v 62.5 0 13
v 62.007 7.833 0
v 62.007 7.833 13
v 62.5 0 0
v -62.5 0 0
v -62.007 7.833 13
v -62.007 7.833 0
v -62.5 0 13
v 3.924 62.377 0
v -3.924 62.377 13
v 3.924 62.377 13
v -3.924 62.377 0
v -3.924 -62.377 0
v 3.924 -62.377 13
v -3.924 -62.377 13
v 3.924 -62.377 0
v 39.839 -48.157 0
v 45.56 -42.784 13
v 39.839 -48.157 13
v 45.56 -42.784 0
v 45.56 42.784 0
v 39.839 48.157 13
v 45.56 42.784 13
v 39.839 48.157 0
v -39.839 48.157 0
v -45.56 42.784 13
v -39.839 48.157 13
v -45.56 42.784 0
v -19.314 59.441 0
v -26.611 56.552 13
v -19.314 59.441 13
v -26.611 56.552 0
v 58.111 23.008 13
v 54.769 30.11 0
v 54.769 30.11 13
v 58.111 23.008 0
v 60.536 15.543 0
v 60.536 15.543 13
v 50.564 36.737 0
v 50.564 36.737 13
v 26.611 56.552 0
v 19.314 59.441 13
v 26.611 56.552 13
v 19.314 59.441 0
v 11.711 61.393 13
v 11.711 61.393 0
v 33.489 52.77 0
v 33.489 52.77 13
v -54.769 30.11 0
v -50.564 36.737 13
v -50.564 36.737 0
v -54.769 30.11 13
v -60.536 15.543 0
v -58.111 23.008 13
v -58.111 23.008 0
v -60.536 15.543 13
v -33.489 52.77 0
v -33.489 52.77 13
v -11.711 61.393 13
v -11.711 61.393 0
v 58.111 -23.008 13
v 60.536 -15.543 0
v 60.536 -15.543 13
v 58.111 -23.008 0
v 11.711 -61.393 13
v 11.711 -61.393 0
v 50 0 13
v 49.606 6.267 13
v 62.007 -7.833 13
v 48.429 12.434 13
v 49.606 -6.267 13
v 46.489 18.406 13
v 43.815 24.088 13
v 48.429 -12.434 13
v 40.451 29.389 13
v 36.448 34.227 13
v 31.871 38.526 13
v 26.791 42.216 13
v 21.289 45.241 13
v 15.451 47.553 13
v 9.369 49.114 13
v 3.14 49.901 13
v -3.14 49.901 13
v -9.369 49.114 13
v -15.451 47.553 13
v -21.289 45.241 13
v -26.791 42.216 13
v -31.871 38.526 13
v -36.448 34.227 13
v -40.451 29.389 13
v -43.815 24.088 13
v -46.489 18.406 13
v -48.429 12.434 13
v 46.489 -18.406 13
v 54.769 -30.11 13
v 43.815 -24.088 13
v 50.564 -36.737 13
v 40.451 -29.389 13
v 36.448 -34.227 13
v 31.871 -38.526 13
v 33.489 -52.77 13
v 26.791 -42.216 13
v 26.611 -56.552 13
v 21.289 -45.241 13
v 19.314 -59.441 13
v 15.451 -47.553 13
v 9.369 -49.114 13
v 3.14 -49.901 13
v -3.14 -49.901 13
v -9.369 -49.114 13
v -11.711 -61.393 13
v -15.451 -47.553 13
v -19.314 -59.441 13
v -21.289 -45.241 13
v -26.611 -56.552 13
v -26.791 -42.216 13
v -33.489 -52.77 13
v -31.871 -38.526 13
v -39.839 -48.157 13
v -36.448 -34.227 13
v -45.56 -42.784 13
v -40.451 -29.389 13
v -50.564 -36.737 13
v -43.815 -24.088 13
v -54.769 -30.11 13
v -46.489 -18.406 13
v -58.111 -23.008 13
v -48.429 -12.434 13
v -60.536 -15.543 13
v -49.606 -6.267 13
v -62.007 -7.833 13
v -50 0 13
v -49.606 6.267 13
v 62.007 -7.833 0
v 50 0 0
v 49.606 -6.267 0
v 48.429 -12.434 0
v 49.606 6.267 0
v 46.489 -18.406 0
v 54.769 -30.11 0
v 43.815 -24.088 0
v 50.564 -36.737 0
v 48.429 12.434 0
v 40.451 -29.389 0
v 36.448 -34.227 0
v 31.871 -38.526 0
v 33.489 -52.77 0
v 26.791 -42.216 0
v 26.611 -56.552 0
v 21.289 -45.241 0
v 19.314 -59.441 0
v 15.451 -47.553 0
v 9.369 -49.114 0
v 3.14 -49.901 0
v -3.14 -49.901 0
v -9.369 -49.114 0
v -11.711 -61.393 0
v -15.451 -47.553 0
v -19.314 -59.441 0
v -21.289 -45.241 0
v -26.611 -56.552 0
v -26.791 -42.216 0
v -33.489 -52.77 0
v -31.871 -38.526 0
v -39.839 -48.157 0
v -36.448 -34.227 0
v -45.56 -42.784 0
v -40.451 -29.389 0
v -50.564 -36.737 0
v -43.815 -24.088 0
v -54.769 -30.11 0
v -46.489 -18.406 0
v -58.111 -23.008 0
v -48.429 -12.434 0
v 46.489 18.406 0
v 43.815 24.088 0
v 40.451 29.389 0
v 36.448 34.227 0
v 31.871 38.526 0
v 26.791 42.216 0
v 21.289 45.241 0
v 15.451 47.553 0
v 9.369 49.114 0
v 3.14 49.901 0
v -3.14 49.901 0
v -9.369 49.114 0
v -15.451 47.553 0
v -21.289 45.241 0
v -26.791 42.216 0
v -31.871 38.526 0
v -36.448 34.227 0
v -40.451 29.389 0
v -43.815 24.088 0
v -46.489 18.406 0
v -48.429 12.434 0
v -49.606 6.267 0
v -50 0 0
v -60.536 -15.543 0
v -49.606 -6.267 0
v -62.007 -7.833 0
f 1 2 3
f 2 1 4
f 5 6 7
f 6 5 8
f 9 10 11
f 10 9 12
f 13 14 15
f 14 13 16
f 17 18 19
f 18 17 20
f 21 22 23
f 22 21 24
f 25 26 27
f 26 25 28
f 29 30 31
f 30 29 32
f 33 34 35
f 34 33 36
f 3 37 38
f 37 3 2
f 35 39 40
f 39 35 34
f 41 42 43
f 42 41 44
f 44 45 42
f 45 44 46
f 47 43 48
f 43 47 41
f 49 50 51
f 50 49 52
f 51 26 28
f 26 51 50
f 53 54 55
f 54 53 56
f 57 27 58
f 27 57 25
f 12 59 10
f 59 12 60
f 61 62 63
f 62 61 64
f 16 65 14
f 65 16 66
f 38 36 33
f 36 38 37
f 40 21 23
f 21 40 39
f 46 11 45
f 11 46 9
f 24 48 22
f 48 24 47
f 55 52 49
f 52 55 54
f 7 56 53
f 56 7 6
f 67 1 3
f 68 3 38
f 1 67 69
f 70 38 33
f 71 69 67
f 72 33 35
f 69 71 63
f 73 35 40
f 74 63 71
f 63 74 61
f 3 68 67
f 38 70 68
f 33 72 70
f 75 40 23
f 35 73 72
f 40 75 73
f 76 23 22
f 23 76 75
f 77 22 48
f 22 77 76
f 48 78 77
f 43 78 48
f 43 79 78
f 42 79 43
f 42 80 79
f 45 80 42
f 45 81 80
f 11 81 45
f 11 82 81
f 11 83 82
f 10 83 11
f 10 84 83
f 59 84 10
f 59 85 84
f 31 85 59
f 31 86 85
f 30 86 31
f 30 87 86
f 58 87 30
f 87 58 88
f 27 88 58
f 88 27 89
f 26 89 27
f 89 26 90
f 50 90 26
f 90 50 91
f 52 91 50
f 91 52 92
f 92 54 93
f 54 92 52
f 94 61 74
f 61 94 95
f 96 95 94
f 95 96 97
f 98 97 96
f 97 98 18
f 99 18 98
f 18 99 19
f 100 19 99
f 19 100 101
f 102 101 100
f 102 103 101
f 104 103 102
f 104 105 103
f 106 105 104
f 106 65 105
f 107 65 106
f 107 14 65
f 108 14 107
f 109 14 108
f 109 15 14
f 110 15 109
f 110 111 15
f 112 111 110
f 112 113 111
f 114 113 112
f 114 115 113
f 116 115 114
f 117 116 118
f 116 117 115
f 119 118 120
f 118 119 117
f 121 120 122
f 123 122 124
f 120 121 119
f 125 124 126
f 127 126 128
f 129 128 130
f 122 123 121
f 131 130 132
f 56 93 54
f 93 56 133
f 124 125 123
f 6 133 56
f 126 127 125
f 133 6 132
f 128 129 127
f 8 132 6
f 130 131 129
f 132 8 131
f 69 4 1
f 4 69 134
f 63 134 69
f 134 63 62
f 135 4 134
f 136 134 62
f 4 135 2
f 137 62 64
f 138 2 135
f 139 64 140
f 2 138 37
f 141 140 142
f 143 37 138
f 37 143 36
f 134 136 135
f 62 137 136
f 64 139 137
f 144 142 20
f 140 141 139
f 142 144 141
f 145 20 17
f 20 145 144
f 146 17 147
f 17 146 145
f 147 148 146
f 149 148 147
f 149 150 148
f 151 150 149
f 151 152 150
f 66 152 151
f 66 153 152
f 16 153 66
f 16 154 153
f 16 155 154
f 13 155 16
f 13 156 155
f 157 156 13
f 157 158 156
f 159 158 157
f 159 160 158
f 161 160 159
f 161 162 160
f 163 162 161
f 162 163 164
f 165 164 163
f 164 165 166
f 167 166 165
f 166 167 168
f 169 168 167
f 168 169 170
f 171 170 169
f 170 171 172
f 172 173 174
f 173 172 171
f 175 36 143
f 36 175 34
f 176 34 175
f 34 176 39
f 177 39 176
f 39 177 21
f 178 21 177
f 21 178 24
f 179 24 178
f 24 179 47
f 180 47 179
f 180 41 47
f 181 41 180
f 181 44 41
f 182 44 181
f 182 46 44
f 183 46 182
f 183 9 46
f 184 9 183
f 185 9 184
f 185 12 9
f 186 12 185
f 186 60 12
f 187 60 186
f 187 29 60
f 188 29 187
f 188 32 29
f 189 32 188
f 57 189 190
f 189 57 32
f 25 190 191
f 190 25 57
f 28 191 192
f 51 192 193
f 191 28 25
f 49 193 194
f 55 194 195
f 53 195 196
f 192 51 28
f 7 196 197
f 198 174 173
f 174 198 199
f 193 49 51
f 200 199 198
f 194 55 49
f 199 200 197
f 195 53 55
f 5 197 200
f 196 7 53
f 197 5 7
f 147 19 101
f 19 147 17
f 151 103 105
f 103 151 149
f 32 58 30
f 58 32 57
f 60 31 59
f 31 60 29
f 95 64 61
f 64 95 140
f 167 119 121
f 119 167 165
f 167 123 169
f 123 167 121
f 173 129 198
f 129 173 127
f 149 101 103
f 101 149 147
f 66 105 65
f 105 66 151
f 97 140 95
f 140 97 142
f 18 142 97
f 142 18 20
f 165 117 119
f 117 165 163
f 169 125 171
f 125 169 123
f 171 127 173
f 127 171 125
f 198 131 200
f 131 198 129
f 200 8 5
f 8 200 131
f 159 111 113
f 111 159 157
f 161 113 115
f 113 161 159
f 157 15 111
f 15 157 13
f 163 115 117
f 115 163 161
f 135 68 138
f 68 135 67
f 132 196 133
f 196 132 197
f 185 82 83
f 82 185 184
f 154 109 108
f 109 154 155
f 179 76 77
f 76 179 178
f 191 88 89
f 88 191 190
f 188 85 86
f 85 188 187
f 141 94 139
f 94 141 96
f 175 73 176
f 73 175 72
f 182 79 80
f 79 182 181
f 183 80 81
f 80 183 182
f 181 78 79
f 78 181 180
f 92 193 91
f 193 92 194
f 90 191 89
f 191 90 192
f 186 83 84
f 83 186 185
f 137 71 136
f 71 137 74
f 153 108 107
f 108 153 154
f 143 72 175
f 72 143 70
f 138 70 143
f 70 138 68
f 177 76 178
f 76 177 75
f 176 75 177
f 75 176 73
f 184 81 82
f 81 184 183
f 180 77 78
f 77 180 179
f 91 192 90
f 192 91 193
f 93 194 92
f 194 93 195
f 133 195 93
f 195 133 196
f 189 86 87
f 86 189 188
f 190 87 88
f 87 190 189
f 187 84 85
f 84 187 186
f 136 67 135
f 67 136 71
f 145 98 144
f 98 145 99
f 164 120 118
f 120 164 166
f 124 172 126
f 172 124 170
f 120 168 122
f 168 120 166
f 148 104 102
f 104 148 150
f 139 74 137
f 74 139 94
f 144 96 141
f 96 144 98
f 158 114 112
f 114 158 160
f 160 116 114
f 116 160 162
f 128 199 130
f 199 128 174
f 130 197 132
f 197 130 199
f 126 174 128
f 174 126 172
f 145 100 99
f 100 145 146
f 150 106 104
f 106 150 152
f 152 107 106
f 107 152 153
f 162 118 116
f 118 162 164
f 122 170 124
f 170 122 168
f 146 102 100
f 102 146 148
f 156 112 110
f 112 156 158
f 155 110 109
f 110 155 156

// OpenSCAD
$fn = 50;


difference() {
	union() {
		translate(v = [0, 0, 0]) {
			rotate(a = [0, 0, 0]) {
				cylinder(h = 13, r = 62.5000000000);
			}
		}
	}
	union() {
		translate(v = [0, 0, 0]) {
			rotate(a = [0, 0, 0]) {
				cylinder(h = 13, r = 50.0000000000);
			}
		}
	}
}
